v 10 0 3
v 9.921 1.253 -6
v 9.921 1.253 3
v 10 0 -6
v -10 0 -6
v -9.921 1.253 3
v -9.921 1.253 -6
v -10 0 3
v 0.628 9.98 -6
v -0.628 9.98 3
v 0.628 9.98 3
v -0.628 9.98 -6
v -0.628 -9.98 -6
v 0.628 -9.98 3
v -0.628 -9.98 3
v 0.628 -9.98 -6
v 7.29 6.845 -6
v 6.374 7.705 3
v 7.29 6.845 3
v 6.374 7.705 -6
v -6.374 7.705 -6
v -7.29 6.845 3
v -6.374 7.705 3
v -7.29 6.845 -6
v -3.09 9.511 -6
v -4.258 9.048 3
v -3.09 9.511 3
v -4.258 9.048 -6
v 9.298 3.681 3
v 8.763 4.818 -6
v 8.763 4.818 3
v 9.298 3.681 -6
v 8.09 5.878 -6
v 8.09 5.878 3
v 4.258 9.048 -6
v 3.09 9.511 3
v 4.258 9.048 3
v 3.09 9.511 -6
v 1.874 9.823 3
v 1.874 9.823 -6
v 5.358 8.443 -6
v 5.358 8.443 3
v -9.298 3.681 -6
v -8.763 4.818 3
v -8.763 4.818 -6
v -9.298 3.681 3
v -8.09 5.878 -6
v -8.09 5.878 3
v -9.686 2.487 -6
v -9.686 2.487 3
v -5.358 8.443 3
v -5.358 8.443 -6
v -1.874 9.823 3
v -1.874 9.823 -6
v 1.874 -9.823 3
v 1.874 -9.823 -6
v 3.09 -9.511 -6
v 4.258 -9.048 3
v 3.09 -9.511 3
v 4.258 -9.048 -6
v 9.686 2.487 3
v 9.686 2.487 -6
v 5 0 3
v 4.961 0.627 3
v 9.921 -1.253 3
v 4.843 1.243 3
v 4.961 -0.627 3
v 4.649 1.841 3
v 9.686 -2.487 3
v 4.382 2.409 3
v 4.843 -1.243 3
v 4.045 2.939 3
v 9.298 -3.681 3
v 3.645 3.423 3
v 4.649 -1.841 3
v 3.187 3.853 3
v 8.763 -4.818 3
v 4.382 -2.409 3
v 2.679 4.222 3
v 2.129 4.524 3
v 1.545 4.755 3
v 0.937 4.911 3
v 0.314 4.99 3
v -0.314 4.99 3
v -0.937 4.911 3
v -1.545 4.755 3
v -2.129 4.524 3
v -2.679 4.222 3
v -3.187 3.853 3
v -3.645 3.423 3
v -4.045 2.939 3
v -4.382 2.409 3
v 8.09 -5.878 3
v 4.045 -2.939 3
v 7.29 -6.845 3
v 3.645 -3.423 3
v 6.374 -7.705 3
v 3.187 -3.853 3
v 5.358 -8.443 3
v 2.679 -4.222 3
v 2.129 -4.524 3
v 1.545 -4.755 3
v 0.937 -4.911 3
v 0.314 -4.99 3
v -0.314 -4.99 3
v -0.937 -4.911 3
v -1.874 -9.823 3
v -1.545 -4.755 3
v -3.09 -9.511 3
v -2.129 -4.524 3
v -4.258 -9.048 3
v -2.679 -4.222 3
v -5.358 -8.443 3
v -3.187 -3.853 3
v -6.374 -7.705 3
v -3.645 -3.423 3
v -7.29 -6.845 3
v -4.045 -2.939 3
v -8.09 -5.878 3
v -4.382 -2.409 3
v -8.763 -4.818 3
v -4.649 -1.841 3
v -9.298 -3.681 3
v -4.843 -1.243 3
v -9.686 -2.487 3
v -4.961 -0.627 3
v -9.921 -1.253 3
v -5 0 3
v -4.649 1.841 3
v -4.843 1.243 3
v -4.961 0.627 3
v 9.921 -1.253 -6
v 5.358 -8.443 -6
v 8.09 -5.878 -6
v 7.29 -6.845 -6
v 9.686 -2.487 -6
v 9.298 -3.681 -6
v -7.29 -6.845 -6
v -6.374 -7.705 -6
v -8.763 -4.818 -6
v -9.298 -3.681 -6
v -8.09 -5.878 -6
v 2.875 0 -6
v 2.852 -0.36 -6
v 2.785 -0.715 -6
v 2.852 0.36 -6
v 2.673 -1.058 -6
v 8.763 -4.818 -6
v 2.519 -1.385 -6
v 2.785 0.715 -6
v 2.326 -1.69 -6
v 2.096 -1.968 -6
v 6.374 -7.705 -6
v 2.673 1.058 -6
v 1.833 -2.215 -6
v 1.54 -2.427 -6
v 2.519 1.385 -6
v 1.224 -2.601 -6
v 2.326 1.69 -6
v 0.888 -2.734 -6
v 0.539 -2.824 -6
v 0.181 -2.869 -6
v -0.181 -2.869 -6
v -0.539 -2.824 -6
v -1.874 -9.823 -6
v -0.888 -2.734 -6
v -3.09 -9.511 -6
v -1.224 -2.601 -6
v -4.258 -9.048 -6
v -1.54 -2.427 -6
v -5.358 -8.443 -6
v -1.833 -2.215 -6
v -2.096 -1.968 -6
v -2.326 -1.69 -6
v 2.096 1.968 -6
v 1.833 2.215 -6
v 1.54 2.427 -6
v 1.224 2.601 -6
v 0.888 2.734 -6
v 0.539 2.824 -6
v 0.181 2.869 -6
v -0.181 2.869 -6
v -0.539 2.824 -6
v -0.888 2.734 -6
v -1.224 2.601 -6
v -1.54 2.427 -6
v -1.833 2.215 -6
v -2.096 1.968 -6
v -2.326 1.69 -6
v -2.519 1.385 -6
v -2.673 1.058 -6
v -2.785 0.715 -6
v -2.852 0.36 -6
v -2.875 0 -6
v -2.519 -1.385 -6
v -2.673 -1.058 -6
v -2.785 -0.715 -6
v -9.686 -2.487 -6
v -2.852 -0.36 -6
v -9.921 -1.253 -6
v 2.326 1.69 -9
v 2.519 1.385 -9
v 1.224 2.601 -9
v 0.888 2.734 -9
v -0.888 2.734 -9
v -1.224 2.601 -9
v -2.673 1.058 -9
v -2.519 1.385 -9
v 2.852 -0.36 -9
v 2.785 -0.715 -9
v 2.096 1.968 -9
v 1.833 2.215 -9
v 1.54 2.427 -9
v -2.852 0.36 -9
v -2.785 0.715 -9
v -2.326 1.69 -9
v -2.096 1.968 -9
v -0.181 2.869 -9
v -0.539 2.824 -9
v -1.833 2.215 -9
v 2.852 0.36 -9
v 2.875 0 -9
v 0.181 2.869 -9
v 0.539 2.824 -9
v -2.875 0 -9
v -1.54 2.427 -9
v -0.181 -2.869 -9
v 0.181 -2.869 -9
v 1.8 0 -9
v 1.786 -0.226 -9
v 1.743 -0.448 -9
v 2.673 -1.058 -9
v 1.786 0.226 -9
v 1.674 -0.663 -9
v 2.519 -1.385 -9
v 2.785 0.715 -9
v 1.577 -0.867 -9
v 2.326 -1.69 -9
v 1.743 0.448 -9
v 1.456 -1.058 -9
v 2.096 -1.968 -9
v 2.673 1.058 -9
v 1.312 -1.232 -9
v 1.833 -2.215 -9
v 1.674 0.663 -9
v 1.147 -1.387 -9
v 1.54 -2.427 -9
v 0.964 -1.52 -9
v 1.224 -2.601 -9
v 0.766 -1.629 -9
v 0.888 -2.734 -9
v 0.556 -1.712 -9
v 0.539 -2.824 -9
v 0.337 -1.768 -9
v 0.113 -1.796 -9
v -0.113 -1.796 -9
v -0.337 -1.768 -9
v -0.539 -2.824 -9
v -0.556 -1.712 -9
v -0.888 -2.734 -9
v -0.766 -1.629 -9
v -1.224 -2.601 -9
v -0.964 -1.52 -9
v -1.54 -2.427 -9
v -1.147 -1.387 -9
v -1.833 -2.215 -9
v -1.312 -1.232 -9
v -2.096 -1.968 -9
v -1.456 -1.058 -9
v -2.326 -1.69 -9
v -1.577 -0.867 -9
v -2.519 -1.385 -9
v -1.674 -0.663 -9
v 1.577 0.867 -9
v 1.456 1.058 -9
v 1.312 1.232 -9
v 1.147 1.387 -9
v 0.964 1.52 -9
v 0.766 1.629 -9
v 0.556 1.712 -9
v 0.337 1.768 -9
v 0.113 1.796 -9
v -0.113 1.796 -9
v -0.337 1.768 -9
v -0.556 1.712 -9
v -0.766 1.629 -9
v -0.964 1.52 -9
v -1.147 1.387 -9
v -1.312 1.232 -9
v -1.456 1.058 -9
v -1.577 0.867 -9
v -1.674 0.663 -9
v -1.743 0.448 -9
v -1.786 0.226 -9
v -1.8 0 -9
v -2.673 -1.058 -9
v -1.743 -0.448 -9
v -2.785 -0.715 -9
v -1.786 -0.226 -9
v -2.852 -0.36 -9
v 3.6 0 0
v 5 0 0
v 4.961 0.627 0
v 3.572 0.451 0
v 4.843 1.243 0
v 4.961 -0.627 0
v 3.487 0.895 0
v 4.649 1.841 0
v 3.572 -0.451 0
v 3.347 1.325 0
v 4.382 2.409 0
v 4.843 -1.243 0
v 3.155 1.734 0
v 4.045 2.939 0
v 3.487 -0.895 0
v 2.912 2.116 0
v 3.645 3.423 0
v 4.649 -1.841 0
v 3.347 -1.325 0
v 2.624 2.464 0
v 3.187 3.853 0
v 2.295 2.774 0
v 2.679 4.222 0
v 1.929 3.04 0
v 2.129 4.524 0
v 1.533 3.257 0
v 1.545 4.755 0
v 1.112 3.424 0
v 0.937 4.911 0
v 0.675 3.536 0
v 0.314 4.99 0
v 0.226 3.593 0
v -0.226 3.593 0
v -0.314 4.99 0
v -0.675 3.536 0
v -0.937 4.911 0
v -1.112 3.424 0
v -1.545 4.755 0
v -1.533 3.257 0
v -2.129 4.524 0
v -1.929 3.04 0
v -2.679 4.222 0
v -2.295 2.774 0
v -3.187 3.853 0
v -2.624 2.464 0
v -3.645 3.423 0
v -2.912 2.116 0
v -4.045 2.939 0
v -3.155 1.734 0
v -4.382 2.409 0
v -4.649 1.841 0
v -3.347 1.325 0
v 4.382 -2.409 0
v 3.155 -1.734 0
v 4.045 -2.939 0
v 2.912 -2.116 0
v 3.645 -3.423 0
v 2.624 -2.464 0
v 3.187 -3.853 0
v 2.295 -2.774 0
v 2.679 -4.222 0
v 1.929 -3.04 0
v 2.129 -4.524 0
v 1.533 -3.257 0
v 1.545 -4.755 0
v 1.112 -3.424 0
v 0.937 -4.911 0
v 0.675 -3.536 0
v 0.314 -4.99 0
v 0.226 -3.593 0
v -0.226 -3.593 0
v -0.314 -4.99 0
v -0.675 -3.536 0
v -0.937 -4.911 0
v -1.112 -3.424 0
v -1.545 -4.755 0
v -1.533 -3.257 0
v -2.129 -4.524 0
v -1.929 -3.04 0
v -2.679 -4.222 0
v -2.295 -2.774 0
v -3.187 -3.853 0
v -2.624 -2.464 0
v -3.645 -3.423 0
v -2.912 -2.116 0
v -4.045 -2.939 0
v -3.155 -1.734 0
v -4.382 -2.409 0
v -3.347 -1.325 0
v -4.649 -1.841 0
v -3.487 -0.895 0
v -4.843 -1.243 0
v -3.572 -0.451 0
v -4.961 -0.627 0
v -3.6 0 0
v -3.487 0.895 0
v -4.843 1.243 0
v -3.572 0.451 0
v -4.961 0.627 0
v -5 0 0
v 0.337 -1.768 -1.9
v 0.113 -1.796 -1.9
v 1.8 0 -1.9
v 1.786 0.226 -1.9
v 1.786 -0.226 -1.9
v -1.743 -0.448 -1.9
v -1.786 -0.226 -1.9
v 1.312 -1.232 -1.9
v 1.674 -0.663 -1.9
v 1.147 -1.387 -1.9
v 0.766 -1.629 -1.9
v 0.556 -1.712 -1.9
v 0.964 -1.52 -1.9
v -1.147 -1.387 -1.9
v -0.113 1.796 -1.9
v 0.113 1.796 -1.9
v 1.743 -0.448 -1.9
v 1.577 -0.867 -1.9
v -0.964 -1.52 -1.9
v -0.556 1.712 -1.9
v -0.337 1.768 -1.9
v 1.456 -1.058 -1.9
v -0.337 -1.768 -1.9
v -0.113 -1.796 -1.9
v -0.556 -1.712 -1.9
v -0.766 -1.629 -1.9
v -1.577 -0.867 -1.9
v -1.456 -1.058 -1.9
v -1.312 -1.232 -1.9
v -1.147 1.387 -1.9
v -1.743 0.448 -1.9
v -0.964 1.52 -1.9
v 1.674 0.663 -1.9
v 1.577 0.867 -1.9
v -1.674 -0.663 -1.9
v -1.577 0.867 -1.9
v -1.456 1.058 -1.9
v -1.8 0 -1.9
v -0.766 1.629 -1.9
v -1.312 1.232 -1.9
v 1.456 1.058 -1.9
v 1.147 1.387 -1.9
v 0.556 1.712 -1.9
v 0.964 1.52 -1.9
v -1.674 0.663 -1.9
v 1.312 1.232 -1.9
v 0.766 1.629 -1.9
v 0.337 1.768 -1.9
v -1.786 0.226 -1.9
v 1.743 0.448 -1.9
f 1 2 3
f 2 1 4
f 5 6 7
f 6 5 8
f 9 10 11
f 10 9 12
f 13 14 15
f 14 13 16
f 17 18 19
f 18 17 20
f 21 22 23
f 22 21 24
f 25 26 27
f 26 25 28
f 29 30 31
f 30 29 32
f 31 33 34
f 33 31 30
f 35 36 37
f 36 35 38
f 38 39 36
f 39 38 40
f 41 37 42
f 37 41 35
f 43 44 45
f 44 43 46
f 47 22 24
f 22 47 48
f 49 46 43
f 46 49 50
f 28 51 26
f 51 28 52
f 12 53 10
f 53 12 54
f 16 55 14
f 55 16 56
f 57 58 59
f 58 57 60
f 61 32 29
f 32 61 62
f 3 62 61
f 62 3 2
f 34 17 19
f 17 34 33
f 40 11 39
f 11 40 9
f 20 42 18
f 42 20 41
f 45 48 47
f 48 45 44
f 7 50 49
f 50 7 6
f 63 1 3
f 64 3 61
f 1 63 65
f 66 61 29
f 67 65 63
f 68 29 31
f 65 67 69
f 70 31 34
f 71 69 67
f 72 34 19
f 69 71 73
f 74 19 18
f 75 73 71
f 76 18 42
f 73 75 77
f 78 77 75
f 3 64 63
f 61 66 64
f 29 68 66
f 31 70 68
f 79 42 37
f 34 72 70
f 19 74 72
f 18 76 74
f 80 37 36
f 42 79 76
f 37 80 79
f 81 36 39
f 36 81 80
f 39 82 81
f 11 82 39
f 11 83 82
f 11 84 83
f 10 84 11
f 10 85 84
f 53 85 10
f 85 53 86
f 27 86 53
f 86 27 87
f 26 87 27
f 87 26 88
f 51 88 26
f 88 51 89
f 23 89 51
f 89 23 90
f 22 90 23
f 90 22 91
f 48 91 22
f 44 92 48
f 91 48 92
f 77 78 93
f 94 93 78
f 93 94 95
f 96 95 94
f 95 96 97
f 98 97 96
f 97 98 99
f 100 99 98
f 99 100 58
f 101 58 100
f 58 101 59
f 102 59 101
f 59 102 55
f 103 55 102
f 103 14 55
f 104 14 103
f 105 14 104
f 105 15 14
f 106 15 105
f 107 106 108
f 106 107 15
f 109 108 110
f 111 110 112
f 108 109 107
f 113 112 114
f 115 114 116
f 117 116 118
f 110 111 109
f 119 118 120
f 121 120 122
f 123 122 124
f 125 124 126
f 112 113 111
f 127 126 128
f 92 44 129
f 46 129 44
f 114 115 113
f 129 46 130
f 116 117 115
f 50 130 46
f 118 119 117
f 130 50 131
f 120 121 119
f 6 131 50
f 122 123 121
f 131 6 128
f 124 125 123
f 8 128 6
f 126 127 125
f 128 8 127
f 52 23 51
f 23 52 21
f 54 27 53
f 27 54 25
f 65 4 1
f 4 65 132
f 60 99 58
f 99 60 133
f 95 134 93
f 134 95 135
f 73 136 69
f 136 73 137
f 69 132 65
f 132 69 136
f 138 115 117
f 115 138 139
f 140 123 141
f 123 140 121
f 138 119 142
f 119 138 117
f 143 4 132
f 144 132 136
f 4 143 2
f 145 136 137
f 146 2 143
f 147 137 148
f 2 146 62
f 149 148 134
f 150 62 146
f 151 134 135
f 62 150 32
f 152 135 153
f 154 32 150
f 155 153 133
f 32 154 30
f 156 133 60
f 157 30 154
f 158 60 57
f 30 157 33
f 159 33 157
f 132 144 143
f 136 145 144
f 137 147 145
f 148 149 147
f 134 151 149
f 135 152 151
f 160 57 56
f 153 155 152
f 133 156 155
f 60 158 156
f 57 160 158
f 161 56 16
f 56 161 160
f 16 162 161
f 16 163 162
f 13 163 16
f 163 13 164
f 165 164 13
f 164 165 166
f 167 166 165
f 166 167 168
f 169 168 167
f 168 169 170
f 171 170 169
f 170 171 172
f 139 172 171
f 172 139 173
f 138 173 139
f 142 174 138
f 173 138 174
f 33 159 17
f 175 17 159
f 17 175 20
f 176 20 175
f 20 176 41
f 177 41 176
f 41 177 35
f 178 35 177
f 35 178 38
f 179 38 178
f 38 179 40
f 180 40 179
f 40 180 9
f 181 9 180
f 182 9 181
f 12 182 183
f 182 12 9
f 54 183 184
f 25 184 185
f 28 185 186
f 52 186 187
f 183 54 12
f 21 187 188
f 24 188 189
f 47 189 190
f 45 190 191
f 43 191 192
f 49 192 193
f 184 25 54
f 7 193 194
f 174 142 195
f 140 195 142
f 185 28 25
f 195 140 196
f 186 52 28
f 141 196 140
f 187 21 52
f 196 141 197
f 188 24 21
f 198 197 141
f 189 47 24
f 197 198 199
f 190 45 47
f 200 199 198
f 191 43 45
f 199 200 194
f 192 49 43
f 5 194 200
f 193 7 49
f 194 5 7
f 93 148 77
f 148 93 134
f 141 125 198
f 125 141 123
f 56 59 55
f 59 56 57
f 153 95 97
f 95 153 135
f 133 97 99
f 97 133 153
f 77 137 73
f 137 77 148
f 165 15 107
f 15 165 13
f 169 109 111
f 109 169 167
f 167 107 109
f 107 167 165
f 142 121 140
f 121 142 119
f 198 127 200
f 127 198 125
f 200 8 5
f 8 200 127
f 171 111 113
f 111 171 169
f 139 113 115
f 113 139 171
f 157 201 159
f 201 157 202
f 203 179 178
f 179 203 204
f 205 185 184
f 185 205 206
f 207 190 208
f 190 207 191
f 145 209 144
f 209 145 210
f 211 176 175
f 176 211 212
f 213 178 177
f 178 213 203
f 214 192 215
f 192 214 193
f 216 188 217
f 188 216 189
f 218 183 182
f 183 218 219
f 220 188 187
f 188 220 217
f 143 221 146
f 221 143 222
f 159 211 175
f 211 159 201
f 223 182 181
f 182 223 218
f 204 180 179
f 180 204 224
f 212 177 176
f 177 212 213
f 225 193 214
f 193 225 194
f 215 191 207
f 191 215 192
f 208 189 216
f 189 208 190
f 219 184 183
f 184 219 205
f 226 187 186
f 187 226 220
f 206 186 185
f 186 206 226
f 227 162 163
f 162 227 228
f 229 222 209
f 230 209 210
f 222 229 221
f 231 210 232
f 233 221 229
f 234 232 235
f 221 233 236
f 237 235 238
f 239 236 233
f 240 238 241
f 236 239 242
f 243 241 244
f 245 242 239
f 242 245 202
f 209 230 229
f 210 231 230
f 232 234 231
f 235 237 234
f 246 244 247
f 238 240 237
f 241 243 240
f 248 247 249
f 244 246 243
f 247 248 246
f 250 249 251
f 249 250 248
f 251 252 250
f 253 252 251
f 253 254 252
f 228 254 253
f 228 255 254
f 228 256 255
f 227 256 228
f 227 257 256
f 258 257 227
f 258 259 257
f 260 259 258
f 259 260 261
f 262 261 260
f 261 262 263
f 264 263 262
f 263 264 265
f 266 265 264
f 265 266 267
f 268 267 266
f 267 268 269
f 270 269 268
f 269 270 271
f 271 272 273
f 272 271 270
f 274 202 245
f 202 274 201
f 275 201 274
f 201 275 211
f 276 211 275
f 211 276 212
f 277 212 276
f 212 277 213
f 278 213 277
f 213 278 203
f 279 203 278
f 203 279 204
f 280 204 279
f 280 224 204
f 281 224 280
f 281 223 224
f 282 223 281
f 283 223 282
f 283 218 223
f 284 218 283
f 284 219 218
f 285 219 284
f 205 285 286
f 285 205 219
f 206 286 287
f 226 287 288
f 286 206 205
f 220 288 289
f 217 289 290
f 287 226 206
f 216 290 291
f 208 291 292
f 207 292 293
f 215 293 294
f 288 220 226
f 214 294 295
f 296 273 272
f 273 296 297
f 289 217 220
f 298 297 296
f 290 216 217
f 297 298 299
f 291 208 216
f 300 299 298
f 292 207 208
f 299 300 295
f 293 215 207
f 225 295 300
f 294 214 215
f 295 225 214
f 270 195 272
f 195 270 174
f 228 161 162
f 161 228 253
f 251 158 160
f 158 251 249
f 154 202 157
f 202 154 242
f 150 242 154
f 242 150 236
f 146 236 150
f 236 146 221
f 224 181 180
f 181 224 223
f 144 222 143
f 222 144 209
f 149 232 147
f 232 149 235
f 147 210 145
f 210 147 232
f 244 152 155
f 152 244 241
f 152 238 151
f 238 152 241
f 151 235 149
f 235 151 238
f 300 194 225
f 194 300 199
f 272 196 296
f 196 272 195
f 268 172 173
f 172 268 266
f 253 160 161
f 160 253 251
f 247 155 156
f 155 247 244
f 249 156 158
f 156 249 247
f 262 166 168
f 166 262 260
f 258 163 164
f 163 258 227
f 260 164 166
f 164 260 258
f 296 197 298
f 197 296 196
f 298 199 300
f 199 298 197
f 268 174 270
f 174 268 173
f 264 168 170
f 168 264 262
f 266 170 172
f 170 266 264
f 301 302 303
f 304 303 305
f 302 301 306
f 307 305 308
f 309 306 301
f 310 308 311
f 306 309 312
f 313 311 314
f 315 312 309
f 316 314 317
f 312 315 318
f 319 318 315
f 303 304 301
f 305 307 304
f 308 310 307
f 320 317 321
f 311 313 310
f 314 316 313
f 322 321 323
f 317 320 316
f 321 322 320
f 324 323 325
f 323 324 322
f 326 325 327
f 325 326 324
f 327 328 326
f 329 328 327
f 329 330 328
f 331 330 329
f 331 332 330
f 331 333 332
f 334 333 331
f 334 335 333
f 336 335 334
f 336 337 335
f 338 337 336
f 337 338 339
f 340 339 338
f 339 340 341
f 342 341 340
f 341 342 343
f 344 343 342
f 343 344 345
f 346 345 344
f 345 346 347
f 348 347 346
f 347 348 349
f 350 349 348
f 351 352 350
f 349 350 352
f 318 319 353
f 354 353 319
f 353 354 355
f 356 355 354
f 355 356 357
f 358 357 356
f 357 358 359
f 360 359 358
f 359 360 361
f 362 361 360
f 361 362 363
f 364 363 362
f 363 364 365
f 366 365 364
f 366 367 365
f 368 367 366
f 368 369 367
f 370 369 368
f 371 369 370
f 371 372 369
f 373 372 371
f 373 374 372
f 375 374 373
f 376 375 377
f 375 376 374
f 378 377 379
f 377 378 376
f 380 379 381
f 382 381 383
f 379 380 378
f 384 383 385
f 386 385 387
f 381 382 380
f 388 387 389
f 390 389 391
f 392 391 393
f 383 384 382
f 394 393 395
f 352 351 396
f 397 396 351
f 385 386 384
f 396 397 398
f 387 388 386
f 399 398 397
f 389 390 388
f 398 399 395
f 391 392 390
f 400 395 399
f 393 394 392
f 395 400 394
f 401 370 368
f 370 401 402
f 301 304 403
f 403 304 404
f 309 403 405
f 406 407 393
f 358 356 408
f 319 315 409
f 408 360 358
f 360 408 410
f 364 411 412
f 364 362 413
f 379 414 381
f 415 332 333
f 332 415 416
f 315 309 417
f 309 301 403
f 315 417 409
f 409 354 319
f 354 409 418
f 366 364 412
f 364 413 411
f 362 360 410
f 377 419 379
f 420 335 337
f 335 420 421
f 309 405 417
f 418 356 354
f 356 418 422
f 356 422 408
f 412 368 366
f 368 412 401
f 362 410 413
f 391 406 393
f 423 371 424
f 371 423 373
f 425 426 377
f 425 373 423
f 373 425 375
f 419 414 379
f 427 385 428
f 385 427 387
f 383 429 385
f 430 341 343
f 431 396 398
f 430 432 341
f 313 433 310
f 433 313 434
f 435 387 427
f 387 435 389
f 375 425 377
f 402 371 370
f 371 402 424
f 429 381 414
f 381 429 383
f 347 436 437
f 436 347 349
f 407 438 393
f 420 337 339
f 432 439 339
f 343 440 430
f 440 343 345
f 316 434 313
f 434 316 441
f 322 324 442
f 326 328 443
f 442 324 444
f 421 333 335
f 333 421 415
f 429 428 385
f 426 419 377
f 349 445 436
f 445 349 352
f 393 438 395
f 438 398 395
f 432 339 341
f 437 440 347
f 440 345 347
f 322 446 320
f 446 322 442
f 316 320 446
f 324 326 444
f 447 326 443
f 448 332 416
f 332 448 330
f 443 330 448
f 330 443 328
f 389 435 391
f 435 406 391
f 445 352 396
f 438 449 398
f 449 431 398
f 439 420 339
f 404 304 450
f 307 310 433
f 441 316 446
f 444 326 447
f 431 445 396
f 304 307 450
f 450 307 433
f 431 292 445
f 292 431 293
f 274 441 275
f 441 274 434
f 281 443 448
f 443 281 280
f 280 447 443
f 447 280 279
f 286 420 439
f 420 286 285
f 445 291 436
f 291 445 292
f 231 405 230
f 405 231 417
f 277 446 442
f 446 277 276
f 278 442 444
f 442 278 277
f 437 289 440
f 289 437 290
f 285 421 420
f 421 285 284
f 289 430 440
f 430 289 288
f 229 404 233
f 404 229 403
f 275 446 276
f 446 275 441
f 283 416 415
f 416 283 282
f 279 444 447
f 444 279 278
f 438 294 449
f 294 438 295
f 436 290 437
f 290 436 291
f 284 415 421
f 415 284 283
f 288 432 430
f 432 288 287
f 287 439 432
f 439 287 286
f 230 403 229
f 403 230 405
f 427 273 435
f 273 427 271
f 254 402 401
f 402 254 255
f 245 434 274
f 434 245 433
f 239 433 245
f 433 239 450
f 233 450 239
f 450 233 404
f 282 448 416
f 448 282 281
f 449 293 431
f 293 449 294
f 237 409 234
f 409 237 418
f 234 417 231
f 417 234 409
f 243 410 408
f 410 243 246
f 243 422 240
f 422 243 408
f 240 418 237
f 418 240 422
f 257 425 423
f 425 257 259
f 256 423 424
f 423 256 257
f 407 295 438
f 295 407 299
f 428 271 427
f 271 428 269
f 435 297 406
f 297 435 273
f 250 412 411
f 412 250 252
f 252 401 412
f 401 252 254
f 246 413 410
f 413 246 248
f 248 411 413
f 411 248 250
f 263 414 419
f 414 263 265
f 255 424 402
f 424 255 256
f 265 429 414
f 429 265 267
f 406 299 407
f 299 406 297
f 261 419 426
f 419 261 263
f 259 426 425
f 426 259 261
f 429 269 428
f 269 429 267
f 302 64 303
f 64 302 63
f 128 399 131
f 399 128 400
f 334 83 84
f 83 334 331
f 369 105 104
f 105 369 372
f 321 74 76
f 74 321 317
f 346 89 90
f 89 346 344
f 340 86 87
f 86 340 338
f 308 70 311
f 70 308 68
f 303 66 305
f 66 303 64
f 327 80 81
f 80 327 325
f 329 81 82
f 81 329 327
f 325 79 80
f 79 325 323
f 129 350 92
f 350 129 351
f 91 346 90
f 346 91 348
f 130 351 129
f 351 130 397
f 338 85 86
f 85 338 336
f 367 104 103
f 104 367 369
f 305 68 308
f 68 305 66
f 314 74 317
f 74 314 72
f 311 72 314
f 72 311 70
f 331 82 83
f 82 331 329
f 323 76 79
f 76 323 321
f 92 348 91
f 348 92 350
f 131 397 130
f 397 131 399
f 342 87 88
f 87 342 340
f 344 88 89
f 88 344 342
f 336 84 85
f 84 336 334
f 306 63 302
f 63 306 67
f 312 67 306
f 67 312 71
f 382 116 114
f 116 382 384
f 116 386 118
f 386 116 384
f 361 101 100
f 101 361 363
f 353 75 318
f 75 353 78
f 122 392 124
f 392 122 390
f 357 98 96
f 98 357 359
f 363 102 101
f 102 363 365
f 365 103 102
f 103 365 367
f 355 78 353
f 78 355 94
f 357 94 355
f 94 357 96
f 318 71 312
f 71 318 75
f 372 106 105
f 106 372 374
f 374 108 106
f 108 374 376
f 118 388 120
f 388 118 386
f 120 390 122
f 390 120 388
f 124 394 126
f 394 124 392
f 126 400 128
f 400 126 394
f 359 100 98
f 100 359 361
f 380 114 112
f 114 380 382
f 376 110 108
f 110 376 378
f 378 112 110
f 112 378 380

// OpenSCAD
$fn = 50;

difference() {
	union() {
		translate(v = [0, 0, -6.0]) {
			cylinder(h = 9, r = 10.0);
		}
		#translate(v = [0, 0, -9.0]) {
			cylinder(h = 9, r = 2.875);
		}
	}
	union() {
		translate(v = [0, 0, 0]) {
			rotate(a = [0, 0, 0]) {
				difference() {
					union() {
						translate(v = [0, 0, -9.0]) {
							cylinder(h = 9, r = 1.5);
						}
						translate(v = [0, 0, -1.9]) {
							cylinder(h = 1.9, r1 = 1.8, r2 = 3.6);
						}
						translate(v = [0, 0, -9.0]) {
							cylinder(h = 9, r = 1.8);
						}
						translate(v = [0, 0, -9.0]) {
							cylinder(h = 9, r = 1.5);
						}
					}
					union();
				}
			}
		}
		#cylinder(h = 3, r = 5.0);
	}
}
